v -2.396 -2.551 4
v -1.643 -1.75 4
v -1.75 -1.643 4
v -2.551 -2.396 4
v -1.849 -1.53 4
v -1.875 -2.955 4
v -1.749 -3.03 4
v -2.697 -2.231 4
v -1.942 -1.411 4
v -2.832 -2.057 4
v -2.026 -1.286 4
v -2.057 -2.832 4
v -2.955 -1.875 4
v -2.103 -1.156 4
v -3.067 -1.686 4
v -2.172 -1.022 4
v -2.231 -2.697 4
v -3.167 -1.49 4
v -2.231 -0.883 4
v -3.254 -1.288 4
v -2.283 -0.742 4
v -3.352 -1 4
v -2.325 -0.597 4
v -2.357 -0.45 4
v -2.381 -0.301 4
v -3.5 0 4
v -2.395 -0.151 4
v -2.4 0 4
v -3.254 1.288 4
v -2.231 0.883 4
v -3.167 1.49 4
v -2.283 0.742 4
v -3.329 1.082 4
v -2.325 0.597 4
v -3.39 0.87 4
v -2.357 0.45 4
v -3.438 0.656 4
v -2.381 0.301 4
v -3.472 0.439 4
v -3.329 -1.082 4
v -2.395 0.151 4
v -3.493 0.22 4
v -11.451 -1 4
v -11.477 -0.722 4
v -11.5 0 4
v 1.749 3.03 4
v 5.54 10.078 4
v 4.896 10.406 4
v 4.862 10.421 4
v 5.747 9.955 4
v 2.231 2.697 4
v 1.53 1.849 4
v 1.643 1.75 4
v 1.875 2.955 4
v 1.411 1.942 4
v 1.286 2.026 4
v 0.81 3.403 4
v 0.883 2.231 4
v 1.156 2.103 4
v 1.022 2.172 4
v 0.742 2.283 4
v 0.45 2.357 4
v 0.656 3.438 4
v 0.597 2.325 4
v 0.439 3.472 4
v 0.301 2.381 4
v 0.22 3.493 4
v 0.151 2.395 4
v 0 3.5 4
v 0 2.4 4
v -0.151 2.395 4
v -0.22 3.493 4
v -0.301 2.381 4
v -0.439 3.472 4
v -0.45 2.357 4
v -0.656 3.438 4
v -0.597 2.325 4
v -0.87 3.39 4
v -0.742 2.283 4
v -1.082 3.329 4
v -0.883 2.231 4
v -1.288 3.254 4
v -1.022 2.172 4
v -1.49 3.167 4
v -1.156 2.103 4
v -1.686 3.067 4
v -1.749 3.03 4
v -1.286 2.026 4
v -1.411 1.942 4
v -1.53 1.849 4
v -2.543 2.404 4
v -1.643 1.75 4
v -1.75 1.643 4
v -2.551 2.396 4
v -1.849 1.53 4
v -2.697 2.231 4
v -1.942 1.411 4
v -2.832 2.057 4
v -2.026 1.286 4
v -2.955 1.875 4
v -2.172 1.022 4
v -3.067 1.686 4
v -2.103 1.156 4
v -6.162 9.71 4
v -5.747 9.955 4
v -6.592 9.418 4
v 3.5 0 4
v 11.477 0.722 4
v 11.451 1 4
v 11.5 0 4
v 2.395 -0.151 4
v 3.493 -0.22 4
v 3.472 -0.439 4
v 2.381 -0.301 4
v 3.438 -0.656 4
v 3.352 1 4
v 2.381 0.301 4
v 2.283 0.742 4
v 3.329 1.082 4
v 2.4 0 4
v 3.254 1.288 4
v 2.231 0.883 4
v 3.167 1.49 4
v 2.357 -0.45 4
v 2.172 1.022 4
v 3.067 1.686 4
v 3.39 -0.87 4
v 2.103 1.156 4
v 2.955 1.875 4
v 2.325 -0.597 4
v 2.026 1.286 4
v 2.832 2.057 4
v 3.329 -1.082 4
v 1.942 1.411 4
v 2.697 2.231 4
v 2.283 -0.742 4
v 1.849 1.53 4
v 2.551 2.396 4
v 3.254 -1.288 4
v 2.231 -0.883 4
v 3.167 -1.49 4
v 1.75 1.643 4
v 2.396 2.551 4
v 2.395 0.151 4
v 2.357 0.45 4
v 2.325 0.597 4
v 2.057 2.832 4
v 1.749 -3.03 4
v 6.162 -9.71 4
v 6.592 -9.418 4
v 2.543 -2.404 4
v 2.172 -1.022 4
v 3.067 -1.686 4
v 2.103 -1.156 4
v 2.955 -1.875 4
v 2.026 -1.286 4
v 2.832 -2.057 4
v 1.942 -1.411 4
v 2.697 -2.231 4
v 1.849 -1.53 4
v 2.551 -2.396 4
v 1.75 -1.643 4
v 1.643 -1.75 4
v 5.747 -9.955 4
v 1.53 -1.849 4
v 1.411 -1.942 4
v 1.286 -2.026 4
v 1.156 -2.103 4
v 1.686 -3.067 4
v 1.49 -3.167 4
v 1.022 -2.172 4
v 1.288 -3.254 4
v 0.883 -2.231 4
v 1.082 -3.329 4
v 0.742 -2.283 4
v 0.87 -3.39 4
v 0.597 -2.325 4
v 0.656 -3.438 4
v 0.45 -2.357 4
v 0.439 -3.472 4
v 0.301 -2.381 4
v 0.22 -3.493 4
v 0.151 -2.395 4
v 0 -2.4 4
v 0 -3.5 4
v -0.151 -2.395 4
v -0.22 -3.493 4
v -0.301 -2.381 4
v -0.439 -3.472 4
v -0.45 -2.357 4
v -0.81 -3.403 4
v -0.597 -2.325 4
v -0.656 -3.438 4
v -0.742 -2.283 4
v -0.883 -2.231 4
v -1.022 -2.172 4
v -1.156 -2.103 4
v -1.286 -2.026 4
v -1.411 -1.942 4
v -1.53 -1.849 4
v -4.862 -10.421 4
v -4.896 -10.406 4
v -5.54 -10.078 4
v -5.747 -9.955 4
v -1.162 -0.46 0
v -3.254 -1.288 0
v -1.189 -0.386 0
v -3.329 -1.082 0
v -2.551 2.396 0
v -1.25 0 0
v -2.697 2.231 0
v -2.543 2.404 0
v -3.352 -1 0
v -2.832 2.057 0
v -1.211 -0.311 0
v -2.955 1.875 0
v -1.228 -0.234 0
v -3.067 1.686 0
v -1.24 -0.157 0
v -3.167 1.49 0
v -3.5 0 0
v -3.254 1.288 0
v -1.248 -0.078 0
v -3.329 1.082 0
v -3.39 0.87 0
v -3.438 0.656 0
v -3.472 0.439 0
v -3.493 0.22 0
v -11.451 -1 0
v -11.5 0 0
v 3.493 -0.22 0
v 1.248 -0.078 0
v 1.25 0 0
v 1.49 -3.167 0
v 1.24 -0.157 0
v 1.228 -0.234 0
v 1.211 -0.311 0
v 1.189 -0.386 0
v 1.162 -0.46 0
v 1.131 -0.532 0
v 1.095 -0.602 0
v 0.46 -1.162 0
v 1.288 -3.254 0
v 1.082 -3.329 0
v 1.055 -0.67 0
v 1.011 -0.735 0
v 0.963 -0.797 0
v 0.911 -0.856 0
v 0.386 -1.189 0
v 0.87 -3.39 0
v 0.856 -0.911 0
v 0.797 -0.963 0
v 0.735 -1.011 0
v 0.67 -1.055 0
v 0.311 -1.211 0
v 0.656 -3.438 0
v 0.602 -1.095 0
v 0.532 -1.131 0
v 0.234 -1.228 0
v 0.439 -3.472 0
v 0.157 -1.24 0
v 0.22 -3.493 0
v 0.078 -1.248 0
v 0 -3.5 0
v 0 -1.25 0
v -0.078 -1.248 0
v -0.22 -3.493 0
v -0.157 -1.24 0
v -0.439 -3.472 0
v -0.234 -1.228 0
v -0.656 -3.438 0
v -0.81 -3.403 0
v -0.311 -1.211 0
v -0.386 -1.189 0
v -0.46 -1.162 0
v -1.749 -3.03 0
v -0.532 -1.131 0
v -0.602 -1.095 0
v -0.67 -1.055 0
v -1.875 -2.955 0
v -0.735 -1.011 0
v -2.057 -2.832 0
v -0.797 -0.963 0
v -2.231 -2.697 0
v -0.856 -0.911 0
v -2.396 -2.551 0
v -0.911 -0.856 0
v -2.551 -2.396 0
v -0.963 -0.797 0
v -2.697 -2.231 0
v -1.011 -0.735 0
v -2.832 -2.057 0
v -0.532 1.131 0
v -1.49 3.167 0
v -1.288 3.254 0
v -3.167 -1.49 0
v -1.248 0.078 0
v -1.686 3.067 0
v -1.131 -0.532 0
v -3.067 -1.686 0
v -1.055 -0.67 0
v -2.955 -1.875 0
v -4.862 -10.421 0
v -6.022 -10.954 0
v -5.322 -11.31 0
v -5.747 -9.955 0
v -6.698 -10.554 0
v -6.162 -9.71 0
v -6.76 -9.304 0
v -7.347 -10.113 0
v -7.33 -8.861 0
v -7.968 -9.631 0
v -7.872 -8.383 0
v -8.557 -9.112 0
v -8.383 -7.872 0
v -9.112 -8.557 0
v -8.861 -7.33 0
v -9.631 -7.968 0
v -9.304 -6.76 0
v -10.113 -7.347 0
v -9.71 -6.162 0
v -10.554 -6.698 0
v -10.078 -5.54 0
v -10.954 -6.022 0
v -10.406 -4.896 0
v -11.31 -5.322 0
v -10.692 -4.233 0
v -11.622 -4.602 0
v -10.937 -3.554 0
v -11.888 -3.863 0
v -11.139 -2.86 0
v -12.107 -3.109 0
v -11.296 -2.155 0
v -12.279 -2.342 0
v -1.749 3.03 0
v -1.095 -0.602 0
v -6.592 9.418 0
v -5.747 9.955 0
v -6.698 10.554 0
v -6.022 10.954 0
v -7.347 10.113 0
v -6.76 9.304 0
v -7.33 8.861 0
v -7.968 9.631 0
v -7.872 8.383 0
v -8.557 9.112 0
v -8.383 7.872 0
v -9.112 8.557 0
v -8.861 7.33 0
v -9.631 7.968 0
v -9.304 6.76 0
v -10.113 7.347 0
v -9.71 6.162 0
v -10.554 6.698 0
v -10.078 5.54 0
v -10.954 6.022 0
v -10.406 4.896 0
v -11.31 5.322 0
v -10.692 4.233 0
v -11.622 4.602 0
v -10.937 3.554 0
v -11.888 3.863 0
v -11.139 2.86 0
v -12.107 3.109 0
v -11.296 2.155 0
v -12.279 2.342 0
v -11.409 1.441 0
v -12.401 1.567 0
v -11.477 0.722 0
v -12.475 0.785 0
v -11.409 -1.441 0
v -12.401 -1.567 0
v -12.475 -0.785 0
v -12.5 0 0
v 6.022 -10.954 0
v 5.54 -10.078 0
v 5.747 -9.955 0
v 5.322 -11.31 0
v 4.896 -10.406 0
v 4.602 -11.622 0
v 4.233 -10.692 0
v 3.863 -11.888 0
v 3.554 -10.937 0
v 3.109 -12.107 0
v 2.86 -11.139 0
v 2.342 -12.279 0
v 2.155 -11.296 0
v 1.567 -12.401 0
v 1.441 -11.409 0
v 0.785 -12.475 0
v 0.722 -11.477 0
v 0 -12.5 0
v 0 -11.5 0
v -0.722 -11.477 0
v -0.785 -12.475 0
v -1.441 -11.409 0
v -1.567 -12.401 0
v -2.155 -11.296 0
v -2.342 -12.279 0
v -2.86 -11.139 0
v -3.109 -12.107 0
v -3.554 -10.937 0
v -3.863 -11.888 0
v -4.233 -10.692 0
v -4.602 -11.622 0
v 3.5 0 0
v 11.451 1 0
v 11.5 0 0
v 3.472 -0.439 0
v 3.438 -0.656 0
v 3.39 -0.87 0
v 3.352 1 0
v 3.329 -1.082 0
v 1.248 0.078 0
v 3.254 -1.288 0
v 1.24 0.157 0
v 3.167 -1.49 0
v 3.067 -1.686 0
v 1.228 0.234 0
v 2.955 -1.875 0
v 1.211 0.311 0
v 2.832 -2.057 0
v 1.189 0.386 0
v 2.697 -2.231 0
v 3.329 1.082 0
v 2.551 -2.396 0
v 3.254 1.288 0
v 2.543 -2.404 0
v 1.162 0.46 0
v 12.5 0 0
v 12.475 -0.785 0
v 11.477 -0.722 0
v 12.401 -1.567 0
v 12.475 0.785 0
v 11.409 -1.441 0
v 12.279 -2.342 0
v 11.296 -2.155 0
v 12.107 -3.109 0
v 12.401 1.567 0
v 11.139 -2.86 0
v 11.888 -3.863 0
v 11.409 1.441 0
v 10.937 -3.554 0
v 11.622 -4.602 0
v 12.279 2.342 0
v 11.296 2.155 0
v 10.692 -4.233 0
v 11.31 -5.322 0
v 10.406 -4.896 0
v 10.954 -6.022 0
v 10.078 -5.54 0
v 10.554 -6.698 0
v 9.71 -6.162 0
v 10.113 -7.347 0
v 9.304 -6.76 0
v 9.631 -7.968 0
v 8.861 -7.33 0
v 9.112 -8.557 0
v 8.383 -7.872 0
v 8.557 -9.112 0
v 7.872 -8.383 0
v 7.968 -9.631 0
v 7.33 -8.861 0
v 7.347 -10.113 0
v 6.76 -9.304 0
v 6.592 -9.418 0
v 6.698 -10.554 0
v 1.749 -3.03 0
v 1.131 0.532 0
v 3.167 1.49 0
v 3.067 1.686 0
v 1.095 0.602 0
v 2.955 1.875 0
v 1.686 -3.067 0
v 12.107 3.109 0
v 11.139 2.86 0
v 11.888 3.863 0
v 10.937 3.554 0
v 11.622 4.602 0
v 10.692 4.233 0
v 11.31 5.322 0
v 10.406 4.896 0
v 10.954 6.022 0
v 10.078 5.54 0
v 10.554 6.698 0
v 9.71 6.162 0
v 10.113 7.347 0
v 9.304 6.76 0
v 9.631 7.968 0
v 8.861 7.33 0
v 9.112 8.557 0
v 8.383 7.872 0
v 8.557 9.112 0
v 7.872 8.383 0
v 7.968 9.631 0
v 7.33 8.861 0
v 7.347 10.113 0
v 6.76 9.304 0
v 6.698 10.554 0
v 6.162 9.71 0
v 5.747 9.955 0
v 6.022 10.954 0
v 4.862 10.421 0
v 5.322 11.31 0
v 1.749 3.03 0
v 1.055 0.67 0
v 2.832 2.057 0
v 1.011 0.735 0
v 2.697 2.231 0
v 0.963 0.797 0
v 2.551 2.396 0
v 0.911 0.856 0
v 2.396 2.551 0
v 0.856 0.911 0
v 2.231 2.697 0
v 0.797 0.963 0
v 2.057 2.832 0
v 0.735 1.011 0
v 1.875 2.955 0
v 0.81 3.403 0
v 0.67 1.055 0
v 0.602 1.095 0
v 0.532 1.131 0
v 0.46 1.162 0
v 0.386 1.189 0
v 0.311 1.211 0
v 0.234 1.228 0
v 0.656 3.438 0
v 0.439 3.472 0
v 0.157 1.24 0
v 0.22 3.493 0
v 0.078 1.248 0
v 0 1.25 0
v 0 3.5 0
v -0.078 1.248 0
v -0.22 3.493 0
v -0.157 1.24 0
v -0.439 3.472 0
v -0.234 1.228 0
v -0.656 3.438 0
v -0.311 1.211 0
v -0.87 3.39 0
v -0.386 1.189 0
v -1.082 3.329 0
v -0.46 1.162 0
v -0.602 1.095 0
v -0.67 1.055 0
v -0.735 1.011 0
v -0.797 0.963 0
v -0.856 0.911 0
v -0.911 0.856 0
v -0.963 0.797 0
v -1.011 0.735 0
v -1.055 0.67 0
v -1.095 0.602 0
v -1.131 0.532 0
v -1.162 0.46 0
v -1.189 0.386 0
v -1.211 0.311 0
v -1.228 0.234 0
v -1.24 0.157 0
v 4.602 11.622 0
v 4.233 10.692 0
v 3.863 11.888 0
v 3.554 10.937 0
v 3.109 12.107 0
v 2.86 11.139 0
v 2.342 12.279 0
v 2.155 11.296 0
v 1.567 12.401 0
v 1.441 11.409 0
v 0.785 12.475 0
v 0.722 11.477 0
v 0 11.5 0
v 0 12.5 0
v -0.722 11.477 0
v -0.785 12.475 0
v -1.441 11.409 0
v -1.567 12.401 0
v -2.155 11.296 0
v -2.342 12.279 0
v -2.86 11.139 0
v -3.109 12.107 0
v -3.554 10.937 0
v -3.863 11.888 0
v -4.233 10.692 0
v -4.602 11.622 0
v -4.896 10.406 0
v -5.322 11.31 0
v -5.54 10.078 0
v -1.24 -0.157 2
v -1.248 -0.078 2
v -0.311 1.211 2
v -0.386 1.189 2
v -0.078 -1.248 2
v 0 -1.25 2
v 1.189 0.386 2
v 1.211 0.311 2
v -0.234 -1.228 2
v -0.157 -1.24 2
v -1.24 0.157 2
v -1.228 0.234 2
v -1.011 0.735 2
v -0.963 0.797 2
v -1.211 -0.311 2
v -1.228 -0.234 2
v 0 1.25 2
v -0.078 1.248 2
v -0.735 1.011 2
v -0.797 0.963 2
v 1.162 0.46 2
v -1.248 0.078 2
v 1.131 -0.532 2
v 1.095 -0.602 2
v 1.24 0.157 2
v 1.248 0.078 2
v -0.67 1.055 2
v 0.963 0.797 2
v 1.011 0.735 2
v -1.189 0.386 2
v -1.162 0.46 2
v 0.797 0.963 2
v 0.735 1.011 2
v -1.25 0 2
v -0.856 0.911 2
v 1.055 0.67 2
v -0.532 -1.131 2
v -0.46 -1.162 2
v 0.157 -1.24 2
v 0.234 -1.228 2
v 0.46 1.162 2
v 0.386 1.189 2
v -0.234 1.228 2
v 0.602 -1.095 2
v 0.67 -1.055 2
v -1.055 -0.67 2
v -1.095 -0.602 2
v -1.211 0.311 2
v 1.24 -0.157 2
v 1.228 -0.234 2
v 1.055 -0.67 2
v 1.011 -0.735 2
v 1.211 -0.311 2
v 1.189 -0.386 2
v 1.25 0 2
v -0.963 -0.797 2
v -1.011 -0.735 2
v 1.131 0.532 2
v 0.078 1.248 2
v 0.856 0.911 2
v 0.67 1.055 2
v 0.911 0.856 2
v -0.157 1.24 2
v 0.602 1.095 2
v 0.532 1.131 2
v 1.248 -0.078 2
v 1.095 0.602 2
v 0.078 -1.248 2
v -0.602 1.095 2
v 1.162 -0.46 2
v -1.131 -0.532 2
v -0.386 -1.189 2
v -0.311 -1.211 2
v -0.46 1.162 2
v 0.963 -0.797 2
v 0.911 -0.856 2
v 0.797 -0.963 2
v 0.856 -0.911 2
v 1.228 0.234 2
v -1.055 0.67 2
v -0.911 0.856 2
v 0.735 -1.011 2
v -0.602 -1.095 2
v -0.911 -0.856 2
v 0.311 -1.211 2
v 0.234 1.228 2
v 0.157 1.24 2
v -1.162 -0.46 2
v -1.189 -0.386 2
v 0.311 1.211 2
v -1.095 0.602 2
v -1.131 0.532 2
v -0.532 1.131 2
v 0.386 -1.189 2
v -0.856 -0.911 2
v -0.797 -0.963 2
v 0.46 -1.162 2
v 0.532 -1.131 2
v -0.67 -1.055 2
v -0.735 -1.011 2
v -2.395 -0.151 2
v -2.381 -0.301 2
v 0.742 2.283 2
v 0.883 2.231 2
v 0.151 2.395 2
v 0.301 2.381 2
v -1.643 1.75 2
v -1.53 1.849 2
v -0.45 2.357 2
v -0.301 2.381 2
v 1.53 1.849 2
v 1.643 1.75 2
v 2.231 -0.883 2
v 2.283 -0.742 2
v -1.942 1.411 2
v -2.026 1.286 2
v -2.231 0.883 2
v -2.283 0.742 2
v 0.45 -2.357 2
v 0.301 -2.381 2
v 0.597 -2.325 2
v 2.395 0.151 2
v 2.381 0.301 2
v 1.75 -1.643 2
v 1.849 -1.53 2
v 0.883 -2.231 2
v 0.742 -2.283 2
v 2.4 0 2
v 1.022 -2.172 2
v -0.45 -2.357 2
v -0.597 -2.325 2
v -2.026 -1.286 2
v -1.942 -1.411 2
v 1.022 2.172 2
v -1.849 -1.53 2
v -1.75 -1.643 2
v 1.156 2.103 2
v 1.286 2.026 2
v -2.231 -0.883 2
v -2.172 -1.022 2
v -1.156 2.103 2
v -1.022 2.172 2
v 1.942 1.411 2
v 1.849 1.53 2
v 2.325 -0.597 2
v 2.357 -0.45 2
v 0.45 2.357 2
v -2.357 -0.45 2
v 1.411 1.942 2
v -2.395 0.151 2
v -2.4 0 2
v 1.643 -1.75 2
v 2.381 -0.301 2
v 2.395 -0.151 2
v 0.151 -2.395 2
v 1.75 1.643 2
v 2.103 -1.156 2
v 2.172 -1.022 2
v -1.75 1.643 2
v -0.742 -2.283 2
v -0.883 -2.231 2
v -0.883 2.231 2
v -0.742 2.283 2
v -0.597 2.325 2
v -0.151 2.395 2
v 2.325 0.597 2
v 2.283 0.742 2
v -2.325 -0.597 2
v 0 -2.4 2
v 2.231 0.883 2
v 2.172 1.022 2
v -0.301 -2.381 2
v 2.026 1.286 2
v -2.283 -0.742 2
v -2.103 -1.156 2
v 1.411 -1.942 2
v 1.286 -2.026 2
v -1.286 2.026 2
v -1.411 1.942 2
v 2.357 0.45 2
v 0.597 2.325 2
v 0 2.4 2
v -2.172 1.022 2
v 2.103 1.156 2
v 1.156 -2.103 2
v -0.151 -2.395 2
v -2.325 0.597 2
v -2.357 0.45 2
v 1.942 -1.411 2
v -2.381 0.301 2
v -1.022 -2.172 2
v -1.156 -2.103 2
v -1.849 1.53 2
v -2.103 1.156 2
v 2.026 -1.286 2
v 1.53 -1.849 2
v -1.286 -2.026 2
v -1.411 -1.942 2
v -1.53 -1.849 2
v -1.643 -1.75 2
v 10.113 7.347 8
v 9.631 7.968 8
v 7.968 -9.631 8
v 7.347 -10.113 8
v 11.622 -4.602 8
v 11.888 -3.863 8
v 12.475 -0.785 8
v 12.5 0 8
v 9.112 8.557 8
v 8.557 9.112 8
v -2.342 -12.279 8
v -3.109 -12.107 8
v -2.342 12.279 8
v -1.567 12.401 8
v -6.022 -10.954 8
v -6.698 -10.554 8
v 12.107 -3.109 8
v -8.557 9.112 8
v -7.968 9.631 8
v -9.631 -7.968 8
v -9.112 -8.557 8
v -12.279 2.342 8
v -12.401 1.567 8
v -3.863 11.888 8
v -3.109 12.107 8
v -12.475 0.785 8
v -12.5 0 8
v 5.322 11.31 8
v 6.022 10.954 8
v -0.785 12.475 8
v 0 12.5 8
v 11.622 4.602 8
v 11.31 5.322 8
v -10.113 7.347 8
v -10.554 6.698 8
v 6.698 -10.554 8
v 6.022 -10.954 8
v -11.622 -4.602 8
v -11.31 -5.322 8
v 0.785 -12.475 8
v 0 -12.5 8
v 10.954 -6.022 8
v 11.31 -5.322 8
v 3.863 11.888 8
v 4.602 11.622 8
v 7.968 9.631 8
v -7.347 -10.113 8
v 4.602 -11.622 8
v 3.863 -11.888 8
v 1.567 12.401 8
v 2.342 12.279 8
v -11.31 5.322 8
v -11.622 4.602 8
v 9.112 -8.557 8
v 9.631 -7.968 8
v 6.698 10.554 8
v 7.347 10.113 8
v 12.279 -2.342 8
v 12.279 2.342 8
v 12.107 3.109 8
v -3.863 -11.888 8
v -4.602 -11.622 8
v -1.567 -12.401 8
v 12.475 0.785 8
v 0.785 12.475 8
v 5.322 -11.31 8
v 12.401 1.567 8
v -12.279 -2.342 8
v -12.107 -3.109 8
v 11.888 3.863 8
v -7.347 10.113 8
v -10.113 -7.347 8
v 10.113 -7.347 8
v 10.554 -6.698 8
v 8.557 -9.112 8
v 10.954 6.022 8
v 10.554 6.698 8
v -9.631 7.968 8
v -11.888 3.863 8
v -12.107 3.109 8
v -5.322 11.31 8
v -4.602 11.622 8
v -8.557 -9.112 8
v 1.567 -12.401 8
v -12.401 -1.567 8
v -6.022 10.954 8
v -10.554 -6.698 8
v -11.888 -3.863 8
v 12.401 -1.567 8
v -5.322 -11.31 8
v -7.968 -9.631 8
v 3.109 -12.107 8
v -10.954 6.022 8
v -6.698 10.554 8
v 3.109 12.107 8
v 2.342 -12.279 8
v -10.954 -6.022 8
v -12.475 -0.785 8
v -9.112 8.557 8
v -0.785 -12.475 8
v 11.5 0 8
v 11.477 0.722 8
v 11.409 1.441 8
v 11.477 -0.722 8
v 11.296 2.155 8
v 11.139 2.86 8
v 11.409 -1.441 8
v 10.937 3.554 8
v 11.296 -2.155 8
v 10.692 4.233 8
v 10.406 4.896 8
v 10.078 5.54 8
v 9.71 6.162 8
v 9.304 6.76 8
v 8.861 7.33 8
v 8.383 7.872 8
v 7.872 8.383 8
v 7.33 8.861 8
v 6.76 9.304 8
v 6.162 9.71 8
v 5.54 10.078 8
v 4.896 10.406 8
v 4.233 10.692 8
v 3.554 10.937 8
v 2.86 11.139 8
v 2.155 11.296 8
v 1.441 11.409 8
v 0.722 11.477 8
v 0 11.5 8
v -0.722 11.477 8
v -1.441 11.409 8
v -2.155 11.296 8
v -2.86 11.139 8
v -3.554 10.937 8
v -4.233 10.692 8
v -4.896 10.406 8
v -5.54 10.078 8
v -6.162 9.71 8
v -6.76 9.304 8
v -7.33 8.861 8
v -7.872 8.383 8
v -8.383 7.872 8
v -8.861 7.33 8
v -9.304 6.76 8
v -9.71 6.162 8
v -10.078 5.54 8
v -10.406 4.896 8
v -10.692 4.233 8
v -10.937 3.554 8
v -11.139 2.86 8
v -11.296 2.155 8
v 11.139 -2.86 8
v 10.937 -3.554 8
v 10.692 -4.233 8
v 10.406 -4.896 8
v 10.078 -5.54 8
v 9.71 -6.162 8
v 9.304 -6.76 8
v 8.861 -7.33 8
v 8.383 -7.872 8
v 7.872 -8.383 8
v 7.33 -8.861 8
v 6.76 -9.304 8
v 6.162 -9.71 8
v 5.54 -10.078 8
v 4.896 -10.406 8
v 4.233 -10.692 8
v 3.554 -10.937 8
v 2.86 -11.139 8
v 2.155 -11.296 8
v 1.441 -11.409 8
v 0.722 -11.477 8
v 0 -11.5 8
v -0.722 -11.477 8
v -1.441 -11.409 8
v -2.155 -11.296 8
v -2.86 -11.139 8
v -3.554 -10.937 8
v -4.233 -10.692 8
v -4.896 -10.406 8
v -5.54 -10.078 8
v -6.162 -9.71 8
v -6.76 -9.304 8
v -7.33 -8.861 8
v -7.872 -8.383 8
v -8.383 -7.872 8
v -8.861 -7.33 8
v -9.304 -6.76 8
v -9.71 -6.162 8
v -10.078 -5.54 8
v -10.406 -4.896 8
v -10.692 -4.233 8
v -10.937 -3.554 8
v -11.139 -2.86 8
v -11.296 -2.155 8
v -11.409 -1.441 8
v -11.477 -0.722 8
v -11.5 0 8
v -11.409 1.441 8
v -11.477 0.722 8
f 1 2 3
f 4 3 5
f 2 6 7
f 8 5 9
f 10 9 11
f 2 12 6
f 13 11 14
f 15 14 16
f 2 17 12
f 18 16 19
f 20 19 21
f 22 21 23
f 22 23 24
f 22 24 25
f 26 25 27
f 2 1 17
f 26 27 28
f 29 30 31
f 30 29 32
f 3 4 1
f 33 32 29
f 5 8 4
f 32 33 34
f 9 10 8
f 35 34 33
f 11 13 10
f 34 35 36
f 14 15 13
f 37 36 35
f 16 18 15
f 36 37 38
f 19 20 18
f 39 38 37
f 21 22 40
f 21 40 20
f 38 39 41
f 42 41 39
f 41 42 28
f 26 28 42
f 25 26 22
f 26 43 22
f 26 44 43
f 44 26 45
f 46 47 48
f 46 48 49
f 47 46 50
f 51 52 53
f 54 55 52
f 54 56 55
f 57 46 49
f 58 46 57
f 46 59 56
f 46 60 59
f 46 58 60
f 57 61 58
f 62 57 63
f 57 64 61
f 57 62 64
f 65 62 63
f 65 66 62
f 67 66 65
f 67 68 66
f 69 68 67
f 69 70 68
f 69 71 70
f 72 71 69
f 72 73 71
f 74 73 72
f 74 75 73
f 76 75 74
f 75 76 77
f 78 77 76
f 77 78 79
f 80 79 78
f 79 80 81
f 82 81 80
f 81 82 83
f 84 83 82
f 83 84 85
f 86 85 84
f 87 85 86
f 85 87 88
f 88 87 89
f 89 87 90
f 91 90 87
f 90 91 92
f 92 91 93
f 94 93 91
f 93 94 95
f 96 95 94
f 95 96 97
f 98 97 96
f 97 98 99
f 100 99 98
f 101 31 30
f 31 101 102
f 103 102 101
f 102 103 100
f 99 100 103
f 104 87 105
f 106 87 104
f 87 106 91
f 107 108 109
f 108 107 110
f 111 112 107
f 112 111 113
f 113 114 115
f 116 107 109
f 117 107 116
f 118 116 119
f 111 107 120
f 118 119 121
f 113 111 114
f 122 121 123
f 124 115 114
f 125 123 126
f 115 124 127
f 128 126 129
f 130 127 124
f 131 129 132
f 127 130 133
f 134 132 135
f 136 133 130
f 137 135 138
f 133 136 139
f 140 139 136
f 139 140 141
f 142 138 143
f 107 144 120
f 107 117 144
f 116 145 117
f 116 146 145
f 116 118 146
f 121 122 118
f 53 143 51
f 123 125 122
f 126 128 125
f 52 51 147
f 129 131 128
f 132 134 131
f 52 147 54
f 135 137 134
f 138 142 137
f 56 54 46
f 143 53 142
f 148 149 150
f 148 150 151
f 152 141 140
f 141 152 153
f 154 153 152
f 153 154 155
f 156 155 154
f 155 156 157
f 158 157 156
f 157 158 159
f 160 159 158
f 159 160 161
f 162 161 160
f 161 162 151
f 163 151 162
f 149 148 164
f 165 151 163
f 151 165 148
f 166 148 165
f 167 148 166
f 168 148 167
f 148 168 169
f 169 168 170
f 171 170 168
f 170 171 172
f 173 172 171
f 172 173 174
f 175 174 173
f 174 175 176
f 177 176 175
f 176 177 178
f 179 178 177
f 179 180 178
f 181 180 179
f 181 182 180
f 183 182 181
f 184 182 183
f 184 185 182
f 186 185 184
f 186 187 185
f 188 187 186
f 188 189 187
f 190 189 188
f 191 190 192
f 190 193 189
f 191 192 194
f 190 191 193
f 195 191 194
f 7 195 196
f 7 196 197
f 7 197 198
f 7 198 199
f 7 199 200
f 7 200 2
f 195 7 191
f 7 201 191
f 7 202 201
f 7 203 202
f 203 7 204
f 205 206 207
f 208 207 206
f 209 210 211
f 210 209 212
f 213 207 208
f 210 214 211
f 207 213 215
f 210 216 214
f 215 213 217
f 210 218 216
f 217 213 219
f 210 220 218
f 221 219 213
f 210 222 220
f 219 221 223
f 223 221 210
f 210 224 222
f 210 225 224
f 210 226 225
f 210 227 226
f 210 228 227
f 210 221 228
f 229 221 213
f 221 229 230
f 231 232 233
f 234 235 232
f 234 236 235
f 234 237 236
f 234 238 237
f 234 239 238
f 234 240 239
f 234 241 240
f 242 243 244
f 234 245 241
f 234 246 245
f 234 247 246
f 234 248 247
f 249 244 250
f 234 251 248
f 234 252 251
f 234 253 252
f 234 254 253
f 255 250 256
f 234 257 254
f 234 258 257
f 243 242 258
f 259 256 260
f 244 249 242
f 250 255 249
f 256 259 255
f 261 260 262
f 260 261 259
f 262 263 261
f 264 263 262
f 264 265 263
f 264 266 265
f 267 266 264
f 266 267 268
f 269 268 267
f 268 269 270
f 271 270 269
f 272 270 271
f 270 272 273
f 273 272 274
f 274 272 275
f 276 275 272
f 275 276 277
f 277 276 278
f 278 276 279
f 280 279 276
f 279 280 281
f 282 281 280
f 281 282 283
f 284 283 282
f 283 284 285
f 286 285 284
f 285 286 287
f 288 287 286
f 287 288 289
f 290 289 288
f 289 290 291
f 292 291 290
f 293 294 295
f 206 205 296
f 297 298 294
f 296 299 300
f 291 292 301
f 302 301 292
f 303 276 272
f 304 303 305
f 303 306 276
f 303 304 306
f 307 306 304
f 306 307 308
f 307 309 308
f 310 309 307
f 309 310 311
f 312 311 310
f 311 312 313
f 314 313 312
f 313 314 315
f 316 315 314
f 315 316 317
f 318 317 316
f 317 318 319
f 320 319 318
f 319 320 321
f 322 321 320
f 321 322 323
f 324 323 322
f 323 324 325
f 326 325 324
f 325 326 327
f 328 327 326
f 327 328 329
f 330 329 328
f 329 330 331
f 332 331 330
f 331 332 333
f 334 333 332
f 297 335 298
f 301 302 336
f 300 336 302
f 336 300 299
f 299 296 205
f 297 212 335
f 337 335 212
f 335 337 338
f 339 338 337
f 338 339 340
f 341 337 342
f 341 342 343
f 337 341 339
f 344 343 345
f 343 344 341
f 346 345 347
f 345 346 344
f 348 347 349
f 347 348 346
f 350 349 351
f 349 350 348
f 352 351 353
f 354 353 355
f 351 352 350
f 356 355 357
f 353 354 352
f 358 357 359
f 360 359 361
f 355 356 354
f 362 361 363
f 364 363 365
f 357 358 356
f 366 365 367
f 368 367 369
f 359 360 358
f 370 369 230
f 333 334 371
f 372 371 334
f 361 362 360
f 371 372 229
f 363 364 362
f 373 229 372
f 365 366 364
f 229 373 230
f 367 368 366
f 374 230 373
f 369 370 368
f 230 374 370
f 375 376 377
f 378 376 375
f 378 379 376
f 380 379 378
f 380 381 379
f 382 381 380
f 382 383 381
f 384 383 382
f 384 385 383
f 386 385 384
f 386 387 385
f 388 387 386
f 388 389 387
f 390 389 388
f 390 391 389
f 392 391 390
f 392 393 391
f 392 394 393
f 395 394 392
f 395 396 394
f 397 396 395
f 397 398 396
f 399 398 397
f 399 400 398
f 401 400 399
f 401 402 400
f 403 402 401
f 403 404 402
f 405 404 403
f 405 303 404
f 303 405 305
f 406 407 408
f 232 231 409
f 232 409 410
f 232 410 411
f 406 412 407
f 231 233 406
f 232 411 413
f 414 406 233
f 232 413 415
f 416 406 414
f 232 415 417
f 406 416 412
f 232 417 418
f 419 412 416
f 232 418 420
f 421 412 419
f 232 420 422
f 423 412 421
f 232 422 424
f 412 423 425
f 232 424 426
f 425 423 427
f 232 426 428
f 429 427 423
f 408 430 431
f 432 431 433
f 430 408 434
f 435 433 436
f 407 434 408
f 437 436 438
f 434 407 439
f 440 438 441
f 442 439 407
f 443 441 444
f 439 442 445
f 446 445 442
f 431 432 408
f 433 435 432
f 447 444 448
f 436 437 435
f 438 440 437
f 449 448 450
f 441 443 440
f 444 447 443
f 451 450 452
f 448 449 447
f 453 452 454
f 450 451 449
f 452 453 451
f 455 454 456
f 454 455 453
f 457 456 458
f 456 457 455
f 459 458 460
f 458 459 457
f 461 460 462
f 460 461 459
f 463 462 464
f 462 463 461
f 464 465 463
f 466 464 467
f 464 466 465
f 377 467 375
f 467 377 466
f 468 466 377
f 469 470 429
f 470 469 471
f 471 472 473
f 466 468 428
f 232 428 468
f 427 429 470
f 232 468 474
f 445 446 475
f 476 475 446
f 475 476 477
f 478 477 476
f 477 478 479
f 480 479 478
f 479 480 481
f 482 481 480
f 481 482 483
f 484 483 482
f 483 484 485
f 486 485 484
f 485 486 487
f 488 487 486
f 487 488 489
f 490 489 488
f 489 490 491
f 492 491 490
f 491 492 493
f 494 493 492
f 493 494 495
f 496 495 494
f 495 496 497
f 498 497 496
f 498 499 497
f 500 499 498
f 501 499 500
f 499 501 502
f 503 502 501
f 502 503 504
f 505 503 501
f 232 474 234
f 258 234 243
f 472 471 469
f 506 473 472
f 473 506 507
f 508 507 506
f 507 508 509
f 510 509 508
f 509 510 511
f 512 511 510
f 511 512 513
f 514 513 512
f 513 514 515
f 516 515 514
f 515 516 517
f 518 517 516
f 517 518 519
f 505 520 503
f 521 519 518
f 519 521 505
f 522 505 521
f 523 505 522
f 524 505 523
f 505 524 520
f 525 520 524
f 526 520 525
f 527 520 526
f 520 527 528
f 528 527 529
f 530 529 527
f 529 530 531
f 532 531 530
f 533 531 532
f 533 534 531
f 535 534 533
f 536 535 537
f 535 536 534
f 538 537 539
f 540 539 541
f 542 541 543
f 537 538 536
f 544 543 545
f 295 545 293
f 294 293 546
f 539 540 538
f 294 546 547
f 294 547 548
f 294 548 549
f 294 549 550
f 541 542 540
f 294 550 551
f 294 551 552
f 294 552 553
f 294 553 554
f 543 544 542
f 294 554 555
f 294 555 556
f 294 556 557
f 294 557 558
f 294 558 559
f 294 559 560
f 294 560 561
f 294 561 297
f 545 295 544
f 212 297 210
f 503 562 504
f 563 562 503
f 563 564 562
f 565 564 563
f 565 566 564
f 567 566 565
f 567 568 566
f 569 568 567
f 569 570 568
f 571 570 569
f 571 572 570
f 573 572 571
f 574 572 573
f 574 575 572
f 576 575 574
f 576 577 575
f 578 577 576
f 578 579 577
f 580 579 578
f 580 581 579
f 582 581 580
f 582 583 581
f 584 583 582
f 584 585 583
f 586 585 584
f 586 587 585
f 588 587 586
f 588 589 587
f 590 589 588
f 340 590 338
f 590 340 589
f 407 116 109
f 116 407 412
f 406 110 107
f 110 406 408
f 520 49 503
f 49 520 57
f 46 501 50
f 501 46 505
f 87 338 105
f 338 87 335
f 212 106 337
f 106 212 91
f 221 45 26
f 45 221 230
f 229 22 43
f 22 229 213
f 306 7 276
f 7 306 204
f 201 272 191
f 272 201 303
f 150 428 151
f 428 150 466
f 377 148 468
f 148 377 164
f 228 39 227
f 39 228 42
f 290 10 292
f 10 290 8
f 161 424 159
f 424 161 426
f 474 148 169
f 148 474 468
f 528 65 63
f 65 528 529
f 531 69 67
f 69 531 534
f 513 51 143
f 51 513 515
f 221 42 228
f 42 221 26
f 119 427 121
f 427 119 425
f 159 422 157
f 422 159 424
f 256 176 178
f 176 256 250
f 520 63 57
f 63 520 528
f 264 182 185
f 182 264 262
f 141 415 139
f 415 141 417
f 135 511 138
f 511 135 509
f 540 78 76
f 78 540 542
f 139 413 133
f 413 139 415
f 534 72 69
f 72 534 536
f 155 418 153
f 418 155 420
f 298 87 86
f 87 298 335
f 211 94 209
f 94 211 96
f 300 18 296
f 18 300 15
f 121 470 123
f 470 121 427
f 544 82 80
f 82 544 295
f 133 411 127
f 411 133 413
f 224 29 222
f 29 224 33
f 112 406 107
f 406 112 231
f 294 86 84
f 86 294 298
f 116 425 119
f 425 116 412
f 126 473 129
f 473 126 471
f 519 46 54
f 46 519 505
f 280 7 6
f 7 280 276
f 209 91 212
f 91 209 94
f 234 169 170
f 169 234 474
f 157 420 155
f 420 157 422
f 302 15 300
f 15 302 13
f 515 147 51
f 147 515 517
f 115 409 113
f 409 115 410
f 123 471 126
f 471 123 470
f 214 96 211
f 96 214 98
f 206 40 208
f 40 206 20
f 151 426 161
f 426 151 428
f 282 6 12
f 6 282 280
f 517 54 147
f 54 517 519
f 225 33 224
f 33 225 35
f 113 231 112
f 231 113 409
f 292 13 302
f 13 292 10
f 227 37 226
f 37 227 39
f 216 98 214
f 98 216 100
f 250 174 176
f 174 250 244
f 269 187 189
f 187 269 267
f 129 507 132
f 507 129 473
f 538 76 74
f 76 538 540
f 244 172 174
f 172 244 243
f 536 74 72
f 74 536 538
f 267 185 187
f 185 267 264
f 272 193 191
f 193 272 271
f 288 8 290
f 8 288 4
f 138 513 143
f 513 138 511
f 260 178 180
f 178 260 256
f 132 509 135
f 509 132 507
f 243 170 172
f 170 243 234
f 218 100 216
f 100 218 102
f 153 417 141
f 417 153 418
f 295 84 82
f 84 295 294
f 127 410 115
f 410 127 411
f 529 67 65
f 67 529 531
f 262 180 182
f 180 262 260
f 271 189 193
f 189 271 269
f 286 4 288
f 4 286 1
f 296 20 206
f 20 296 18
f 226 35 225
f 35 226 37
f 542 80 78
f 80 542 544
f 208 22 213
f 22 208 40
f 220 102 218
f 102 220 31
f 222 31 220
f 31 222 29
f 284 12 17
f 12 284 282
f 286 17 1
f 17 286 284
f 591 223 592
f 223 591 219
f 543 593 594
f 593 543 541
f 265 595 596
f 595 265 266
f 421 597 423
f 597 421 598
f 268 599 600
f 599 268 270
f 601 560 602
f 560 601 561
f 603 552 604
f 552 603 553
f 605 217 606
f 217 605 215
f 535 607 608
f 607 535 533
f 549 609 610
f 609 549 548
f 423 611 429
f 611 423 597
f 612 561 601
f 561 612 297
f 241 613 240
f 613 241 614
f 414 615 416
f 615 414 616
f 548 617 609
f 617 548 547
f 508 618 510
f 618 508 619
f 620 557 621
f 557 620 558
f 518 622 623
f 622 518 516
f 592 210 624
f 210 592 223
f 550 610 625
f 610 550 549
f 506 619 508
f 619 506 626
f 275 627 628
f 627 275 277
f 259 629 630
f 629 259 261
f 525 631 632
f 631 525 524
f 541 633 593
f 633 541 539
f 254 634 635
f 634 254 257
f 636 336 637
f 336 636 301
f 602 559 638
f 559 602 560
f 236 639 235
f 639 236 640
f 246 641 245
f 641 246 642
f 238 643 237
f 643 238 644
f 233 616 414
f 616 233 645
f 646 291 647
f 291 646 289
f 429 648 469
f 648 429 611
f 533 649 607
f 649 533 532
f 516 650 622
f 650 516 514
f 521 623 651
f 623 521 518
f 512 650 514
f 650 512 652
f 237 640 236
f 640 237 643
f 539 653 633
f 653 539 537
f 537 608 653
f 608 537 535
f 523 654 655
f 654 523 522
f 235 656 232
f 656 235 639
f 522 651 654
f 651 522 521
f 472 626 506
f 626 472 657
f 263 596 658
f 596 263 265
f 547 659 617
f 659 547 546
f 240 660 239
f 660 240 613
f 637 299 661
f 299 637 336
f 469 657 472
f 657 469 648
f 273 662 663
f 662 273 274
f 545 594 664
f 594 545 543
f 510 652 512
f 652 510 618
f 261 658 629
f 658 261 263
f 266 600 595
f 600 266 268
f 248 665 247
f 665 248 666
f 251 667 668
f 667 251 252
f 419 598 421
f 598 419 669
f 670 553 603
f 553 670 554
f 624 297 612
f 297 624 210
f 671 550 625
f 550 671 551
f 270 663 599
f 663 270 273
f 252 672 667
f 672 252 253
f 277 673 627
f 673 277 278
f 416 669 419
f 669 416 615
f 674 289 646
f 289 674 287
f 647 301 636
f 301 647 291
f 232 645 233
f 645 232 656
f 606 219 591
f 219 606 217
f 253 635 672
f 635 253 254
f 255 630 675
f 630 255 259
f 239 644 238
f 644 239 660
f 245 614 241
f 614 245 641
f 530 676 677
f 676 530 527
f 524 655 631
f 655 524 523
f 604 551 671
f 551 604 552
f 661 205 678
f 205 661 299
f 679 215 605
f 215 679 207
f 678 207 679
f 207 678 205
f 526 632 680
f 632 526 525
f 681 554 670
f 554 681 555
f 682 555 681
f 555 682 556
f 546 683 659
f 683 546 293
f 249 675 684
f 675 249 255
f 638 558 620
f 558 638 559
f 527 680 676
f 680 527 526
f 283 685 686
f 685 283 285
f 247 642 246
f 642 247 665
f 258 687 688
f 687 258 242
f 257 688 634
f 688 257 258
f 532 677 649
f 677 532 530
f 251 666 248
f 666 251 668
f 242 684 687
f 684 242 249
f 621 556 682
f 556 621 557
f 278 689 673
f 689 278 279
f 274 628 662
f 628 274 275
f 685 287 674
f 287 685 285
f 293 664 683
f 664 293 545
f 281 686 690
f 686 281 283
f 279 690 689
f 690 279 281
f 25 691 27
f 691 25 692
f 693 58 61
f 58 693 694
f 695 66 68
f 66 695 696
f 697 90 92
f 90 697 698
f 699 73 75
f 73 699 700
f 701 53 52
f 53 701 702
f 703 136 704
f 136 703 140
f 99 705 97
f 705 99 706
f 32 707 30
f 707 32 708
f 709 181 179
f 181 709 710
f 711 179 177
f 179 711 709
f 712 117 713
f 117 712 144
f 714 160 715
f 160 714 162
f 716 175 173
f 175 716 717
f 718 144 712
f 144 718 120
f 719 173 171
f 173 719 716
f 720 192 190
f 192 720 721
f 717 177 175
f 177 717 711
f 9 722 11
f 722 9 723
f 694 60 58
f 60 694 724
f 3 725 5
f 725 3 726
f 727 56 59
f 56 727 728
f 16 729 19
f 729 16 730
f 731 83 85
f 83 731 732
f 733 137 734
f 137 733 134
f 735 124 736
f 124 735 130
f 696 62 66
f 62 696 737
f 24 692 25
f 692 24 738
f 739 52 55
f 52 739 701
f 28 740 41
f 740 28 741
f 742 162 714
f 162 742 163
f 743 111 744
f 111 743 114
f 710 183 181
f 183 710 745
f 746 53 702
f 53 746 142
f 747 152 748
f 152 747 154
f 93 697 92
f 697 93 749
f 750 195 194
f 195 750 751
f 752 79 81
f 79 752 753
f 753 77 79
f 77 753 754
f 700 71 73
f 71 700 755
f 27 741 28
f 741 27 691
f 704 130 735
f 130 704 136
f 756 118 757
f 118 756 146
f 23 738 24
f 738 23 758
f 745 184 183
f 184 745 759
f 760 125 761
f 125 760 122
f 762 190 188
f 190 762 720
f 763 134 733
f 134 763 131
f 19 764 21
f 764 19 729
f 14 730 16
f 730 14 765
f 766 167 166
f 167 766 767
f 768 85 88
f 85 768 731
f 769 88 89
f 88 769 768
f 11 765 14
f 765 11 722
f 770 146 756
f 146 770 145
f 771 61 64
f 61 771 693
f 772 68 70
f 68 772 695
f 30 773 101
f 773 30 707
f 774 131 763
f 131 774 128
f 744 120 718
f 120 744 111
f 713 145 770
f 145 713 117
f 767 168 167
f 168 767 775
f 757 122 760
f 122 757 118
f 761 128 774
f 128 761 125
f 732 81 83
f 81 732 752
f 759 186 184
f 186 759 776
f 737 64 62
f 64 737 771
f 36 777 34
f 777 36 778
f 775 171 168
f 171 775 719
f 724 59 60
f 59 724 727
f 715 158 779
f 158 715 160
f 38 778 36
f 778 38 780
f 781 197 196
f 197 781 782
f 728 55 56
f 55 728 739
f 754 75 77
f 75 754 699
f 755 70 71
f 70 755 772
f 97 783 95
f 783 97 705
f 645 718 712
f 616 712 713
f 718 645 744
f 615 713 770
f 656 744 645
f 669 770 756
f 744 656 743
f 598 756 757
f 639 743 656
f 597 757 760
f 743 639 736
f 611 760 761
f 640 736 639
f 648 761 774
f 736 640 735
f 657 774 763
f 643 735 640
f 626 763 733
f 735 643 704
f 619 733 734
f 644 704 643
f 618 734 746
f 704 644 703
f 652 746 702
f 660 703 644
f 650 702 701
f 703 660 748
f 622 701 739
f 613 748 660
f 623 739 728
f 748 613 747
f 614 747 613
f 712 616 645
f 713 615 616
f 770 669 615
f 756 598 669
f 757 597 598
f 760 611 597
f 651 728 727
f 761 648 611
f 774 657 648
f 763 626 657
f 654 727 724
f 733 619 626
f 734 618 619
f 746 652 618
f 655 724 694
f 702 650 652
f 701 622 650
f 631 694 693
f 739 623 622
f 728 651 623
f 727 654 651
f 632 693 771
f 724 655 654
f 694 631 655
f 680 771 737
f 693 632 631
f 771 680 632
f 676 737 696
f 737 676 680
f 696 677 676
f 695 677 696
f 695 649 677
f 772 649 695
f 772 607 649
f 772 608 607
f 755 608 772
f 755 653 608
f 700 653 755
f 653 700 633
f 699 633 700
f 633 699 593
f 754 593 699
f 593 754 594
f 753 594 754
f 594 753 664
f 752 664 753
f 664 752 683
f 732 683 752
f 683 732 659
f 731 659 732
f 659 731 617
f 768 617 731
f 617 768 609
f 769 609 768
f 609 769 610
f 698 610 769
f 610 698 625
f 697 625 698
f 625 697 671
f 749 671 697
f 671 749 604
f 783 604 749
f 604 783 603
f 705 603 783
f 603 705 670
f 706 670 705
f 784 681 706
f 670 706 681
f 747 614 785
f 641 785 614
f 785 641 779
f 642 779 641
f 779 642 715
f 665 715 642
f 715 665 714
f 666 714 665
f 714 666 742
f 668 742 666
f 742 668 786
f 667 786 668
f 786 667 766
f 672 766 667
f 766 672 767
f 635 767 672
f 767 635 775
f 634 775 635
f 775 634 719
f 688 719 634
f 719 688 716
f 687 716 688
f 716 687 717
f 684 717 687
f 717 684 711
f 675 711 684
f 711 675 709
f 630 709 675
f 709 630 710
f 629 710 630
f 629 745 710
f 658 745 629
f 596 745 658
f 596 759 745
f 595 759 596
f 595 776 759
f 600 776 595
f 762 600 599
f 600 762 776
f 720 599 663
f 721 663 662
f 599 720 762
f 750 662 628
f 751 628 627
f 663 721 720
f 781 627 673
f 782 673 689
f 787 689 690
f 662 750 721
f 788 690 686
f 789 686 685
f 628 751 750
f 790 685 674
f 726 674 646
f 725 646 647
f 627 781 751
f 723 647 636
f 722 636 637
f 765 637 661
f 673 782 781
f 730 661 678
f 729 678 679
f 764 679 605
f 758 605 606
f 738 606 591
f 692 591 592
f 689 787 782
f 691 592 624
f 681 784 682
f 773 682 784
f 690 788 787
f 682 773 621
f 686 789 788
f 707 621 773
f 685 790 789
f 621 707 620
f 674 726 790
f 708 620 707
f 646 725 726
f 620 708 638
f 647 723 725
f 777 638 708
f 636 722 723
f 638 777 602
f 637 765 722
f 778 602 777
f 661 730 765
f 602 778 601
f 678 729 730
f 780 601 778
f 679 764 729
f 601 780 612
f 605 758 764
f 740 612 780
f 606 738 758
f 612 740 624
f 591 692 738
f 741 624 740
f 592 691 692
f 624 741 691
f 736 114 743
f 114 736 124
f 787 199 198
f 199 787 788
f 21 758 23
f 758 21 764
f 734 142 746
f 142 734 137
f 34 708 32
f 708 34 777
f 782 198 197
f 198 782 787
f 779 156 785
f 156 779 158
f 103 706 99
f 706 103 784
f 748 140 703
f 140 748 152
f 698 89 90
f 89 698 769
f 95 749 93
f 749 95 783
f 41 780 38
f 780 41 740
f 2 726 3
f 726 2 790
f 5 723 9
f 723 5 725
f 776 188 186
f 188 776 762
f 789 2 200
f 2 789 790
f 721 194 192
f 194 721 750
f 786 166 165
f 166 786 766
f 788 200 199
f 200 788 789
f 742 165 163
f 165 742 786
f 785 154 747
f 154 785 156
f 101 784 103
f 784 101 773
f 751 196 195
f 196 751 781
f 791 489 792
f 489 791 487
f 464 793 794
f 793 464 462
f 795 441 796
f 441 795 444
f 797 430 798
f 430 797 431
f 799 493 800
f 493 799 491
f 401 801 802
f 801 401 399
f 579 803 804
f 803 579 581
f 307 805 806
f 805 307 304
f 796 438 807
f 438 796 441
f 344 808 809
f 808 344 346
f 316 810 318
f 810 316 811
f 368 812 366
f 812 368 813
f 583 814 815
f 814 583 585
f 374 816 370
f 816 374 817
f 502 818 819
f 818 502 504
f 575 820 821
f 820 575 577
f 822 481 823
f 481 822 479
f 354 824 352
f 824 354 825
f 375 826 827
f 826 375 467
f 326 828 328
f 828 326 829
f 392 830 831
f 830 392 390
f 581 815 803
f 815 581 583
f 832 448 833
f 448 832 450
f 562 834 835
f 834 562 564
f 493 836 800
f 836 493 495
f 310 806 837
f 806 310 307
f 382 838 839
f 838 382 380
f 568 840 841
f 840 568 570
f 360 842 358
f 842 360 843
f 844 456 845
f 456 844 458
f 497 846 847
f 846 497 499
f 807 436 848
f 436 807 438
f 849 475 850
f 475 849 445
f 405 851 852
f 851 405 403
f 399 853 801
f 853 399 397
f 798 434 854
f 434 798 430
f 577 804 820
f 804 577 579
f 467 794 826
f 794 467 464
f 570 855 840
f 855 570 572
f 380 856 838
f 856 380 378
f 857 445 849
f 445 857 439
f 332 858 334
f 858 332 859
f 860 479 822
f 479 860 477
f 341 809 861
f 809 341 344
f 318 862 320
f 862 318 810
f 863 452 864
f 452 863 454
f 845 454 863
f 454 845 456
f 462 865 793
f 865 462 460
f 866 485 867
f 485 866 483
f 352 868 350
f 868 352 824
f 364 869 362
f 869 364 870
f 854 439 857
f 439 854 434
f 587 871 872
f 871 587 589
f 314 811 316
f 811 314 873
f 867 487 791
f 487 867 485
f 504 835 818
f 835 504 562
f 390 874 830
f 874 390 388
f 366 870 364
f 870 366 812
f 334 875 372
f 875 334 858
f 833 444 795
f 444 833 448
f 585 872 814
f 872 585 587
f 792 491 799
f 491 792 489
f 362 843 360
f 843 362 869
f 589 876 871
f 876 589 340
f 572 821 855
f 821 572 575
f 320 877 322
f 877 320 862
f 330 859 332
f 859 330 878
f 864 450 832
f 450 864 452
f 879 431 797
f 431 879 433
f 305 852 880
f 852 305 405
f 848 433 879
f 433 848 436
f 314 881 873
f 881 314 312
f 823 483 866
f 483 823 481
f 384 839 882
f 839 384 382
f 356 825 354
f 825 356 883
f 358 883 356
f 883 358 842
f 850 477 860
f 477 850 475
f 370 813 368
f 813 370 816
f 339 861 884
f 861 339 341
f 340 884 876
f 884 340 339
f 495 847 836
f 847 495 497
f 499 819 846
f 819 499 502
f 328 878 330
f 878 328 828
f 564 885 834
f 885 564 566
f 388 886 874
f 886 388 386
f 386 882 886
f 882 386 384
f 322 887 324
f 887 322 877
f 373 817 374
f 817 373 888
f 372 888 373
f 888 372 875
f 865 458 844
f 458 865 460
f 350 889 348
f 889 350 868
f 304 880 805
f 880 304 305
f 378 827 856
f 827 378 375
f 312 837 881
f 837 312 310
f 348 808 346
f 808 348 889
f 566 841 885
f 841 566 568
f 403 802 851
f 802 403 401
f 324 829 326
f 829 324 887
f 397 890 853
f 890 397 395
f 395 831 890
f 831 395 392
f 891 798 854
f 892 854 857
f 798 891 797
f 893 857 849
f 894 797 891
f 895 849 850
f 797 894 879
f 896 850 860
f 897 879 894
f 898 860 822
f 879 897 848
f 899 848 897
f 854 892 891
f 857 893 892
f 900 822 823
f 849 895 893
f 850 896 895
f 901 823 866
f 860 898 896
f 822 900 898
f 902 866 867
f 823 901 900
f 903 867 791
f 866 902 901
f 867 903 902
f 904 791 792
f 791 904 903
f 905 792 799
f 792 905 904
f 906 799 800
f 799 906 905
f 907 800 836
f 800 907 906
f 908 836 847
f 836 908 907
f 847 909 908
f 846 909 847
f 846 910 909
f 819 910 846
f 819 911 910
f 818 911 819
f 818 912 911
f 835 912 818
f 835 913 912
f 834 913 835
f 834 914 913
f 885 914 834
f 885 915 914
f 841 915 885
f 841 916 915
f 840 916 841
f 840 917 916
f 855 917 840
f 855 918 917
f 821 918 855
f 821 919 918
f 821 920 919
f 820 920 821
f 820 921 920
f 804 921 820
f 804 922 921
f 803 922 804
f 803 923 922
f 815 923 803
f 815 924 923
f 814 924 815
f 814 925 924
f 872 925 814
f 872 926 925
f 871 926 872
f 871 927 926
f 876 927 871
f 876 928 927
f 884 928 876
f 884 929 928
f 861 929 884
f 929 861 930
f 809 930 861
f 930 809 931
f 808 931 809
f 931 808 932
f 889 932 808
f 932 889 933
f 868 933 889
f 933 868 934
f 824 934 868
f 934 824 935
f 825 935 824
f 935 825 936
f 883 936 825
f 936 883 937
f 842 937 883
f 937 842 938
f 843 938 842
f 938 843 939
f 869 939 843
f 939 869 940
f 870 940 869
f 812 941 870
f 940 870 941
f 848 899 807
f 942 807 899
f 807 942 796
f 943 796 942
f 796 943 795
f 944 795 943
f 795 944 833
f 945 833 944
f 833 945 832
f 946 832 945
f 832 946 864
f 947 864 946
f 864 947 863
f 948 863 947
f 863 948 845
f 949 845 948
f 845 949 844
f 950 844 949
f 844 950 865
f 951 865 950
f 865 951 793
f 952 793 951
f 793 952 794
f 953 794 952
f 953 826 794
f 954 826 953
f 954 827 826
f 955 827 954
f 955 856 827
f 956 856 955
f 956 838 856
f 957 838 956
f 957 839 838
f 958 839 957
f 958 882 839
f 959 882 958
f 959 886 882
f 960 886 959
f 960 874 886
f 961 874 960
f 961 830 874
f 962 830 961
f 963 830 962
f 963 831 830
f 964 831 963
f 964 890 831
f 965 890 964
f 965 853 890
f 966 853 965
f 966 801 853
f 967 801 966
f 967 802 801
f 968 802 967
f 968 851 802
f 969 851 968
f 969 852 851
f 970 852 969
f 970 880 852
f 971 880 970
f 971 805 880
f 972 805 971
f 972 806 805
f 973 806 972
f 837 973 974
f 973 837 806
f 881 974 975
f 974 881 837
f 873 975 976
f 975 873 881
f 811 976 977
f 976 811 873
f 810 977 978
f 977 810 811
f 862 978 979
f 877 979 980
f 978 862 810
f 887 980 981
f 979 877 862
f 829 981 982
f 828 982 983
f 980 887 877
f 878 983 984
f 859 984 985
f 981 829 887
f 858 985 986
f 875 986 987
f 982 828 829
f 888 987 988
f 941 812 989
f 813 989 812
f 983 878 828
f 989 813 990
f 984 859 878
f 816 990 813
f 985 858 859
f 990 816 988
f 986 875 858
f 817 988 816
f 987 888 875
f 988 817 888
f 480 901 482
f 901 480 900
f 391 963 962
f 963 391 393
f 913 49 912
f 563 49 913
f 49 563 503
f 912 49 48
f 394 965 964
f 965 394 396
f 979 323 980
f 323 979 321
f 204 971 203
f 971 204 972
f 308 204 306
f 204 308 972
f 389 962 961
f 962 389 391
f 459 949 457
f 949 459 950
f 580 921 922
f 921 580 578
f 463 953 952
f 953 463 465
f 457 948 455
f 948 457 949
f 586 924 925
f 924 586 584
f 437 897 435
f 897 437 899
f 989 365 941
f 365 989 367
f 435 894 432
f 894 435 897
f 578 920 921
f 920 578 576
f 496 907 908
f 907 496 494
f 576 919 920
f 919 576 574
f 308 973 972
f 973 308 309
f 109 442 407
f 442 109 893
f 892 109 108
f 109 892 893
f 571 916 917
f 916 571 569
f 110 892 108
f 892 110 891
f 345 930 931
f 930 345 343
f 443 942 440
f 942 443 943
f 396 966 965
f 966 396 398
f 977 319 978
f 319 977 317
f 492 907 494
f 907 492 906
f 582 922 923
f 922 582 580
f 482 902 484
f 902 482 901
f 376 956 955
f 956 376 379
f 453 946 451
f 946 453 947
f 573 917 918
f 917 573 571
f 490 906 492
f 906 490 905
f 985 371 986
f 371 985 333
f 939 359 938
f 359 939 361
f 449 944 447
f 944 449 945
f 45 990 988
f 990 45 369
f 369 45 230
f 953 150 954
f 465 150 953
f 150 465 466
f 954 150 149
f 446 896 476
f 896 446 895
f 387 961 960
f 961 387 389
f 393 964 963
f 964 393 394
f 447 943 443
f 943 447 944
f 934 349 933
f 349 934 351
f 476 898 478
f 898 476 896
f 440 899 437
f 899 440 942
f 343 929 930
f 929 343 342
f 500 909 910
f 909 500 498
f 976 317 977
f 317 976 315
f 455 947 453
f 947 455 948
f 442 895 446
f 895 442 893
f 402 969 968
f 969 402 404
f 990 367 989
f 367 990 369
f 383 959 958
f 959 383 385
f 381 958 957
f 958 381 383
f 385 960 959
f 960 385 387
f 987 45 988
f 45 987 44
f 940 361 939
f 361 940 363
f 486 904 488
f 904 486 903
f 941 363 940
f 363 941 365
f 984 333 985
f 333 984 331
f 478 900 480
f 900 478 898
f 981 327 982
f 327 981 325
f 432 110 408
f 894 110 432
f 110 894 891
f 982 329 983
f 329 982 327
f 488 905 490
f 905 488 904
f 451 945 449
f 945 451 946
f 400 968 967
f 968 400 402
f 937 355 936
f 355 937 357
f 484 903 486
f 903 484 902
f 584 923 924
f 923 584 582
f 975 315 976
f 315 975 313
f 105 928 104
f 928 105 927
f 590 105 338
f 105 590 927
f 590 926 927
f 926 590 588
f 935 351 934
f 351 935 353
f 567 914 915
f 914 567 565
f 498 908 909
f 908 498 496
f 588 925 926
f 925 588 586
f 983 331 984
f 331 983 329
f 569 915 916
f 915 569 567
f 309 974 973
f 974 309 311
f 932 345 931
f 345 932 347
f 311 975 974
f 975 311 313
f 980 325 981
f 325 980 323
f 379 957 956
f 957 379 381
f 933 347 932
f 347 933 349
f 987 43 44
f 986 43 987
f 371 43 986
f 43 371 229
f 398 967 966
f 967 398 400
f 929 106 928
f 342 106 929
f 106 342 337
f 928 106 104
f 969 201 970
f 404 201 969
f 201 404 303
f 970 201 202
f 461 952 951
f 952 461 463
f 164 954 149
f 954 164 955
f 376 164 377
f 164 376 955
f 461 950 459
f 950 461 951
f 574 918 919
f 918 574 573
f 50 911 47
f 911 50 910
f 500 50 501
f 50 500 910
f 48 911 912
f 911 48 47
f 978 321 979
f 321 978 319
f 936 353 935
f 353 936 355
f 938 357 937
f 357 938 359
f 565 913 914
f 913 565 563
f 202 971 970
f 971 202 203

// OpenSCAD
$fn=100;

$diameter=25;

//axe
difference()
{
    union(){
        cylinder(4,d=7);
        for (i = [0:60:300]) {
            rotate([0,0,i])cube([($diameter/2)-1,1,4]);

        }
    }
    union(){
        translate([0,0,-1])cylinder(10,d=2.5);
        translate([0,0,2])cylinder(6,d=4.8);
    }
}

//wheel
difference(){
    cylinder(8,d=$diameter);
    translate([0,0,-1])cylinder(12,d=$diameter-2);
}
